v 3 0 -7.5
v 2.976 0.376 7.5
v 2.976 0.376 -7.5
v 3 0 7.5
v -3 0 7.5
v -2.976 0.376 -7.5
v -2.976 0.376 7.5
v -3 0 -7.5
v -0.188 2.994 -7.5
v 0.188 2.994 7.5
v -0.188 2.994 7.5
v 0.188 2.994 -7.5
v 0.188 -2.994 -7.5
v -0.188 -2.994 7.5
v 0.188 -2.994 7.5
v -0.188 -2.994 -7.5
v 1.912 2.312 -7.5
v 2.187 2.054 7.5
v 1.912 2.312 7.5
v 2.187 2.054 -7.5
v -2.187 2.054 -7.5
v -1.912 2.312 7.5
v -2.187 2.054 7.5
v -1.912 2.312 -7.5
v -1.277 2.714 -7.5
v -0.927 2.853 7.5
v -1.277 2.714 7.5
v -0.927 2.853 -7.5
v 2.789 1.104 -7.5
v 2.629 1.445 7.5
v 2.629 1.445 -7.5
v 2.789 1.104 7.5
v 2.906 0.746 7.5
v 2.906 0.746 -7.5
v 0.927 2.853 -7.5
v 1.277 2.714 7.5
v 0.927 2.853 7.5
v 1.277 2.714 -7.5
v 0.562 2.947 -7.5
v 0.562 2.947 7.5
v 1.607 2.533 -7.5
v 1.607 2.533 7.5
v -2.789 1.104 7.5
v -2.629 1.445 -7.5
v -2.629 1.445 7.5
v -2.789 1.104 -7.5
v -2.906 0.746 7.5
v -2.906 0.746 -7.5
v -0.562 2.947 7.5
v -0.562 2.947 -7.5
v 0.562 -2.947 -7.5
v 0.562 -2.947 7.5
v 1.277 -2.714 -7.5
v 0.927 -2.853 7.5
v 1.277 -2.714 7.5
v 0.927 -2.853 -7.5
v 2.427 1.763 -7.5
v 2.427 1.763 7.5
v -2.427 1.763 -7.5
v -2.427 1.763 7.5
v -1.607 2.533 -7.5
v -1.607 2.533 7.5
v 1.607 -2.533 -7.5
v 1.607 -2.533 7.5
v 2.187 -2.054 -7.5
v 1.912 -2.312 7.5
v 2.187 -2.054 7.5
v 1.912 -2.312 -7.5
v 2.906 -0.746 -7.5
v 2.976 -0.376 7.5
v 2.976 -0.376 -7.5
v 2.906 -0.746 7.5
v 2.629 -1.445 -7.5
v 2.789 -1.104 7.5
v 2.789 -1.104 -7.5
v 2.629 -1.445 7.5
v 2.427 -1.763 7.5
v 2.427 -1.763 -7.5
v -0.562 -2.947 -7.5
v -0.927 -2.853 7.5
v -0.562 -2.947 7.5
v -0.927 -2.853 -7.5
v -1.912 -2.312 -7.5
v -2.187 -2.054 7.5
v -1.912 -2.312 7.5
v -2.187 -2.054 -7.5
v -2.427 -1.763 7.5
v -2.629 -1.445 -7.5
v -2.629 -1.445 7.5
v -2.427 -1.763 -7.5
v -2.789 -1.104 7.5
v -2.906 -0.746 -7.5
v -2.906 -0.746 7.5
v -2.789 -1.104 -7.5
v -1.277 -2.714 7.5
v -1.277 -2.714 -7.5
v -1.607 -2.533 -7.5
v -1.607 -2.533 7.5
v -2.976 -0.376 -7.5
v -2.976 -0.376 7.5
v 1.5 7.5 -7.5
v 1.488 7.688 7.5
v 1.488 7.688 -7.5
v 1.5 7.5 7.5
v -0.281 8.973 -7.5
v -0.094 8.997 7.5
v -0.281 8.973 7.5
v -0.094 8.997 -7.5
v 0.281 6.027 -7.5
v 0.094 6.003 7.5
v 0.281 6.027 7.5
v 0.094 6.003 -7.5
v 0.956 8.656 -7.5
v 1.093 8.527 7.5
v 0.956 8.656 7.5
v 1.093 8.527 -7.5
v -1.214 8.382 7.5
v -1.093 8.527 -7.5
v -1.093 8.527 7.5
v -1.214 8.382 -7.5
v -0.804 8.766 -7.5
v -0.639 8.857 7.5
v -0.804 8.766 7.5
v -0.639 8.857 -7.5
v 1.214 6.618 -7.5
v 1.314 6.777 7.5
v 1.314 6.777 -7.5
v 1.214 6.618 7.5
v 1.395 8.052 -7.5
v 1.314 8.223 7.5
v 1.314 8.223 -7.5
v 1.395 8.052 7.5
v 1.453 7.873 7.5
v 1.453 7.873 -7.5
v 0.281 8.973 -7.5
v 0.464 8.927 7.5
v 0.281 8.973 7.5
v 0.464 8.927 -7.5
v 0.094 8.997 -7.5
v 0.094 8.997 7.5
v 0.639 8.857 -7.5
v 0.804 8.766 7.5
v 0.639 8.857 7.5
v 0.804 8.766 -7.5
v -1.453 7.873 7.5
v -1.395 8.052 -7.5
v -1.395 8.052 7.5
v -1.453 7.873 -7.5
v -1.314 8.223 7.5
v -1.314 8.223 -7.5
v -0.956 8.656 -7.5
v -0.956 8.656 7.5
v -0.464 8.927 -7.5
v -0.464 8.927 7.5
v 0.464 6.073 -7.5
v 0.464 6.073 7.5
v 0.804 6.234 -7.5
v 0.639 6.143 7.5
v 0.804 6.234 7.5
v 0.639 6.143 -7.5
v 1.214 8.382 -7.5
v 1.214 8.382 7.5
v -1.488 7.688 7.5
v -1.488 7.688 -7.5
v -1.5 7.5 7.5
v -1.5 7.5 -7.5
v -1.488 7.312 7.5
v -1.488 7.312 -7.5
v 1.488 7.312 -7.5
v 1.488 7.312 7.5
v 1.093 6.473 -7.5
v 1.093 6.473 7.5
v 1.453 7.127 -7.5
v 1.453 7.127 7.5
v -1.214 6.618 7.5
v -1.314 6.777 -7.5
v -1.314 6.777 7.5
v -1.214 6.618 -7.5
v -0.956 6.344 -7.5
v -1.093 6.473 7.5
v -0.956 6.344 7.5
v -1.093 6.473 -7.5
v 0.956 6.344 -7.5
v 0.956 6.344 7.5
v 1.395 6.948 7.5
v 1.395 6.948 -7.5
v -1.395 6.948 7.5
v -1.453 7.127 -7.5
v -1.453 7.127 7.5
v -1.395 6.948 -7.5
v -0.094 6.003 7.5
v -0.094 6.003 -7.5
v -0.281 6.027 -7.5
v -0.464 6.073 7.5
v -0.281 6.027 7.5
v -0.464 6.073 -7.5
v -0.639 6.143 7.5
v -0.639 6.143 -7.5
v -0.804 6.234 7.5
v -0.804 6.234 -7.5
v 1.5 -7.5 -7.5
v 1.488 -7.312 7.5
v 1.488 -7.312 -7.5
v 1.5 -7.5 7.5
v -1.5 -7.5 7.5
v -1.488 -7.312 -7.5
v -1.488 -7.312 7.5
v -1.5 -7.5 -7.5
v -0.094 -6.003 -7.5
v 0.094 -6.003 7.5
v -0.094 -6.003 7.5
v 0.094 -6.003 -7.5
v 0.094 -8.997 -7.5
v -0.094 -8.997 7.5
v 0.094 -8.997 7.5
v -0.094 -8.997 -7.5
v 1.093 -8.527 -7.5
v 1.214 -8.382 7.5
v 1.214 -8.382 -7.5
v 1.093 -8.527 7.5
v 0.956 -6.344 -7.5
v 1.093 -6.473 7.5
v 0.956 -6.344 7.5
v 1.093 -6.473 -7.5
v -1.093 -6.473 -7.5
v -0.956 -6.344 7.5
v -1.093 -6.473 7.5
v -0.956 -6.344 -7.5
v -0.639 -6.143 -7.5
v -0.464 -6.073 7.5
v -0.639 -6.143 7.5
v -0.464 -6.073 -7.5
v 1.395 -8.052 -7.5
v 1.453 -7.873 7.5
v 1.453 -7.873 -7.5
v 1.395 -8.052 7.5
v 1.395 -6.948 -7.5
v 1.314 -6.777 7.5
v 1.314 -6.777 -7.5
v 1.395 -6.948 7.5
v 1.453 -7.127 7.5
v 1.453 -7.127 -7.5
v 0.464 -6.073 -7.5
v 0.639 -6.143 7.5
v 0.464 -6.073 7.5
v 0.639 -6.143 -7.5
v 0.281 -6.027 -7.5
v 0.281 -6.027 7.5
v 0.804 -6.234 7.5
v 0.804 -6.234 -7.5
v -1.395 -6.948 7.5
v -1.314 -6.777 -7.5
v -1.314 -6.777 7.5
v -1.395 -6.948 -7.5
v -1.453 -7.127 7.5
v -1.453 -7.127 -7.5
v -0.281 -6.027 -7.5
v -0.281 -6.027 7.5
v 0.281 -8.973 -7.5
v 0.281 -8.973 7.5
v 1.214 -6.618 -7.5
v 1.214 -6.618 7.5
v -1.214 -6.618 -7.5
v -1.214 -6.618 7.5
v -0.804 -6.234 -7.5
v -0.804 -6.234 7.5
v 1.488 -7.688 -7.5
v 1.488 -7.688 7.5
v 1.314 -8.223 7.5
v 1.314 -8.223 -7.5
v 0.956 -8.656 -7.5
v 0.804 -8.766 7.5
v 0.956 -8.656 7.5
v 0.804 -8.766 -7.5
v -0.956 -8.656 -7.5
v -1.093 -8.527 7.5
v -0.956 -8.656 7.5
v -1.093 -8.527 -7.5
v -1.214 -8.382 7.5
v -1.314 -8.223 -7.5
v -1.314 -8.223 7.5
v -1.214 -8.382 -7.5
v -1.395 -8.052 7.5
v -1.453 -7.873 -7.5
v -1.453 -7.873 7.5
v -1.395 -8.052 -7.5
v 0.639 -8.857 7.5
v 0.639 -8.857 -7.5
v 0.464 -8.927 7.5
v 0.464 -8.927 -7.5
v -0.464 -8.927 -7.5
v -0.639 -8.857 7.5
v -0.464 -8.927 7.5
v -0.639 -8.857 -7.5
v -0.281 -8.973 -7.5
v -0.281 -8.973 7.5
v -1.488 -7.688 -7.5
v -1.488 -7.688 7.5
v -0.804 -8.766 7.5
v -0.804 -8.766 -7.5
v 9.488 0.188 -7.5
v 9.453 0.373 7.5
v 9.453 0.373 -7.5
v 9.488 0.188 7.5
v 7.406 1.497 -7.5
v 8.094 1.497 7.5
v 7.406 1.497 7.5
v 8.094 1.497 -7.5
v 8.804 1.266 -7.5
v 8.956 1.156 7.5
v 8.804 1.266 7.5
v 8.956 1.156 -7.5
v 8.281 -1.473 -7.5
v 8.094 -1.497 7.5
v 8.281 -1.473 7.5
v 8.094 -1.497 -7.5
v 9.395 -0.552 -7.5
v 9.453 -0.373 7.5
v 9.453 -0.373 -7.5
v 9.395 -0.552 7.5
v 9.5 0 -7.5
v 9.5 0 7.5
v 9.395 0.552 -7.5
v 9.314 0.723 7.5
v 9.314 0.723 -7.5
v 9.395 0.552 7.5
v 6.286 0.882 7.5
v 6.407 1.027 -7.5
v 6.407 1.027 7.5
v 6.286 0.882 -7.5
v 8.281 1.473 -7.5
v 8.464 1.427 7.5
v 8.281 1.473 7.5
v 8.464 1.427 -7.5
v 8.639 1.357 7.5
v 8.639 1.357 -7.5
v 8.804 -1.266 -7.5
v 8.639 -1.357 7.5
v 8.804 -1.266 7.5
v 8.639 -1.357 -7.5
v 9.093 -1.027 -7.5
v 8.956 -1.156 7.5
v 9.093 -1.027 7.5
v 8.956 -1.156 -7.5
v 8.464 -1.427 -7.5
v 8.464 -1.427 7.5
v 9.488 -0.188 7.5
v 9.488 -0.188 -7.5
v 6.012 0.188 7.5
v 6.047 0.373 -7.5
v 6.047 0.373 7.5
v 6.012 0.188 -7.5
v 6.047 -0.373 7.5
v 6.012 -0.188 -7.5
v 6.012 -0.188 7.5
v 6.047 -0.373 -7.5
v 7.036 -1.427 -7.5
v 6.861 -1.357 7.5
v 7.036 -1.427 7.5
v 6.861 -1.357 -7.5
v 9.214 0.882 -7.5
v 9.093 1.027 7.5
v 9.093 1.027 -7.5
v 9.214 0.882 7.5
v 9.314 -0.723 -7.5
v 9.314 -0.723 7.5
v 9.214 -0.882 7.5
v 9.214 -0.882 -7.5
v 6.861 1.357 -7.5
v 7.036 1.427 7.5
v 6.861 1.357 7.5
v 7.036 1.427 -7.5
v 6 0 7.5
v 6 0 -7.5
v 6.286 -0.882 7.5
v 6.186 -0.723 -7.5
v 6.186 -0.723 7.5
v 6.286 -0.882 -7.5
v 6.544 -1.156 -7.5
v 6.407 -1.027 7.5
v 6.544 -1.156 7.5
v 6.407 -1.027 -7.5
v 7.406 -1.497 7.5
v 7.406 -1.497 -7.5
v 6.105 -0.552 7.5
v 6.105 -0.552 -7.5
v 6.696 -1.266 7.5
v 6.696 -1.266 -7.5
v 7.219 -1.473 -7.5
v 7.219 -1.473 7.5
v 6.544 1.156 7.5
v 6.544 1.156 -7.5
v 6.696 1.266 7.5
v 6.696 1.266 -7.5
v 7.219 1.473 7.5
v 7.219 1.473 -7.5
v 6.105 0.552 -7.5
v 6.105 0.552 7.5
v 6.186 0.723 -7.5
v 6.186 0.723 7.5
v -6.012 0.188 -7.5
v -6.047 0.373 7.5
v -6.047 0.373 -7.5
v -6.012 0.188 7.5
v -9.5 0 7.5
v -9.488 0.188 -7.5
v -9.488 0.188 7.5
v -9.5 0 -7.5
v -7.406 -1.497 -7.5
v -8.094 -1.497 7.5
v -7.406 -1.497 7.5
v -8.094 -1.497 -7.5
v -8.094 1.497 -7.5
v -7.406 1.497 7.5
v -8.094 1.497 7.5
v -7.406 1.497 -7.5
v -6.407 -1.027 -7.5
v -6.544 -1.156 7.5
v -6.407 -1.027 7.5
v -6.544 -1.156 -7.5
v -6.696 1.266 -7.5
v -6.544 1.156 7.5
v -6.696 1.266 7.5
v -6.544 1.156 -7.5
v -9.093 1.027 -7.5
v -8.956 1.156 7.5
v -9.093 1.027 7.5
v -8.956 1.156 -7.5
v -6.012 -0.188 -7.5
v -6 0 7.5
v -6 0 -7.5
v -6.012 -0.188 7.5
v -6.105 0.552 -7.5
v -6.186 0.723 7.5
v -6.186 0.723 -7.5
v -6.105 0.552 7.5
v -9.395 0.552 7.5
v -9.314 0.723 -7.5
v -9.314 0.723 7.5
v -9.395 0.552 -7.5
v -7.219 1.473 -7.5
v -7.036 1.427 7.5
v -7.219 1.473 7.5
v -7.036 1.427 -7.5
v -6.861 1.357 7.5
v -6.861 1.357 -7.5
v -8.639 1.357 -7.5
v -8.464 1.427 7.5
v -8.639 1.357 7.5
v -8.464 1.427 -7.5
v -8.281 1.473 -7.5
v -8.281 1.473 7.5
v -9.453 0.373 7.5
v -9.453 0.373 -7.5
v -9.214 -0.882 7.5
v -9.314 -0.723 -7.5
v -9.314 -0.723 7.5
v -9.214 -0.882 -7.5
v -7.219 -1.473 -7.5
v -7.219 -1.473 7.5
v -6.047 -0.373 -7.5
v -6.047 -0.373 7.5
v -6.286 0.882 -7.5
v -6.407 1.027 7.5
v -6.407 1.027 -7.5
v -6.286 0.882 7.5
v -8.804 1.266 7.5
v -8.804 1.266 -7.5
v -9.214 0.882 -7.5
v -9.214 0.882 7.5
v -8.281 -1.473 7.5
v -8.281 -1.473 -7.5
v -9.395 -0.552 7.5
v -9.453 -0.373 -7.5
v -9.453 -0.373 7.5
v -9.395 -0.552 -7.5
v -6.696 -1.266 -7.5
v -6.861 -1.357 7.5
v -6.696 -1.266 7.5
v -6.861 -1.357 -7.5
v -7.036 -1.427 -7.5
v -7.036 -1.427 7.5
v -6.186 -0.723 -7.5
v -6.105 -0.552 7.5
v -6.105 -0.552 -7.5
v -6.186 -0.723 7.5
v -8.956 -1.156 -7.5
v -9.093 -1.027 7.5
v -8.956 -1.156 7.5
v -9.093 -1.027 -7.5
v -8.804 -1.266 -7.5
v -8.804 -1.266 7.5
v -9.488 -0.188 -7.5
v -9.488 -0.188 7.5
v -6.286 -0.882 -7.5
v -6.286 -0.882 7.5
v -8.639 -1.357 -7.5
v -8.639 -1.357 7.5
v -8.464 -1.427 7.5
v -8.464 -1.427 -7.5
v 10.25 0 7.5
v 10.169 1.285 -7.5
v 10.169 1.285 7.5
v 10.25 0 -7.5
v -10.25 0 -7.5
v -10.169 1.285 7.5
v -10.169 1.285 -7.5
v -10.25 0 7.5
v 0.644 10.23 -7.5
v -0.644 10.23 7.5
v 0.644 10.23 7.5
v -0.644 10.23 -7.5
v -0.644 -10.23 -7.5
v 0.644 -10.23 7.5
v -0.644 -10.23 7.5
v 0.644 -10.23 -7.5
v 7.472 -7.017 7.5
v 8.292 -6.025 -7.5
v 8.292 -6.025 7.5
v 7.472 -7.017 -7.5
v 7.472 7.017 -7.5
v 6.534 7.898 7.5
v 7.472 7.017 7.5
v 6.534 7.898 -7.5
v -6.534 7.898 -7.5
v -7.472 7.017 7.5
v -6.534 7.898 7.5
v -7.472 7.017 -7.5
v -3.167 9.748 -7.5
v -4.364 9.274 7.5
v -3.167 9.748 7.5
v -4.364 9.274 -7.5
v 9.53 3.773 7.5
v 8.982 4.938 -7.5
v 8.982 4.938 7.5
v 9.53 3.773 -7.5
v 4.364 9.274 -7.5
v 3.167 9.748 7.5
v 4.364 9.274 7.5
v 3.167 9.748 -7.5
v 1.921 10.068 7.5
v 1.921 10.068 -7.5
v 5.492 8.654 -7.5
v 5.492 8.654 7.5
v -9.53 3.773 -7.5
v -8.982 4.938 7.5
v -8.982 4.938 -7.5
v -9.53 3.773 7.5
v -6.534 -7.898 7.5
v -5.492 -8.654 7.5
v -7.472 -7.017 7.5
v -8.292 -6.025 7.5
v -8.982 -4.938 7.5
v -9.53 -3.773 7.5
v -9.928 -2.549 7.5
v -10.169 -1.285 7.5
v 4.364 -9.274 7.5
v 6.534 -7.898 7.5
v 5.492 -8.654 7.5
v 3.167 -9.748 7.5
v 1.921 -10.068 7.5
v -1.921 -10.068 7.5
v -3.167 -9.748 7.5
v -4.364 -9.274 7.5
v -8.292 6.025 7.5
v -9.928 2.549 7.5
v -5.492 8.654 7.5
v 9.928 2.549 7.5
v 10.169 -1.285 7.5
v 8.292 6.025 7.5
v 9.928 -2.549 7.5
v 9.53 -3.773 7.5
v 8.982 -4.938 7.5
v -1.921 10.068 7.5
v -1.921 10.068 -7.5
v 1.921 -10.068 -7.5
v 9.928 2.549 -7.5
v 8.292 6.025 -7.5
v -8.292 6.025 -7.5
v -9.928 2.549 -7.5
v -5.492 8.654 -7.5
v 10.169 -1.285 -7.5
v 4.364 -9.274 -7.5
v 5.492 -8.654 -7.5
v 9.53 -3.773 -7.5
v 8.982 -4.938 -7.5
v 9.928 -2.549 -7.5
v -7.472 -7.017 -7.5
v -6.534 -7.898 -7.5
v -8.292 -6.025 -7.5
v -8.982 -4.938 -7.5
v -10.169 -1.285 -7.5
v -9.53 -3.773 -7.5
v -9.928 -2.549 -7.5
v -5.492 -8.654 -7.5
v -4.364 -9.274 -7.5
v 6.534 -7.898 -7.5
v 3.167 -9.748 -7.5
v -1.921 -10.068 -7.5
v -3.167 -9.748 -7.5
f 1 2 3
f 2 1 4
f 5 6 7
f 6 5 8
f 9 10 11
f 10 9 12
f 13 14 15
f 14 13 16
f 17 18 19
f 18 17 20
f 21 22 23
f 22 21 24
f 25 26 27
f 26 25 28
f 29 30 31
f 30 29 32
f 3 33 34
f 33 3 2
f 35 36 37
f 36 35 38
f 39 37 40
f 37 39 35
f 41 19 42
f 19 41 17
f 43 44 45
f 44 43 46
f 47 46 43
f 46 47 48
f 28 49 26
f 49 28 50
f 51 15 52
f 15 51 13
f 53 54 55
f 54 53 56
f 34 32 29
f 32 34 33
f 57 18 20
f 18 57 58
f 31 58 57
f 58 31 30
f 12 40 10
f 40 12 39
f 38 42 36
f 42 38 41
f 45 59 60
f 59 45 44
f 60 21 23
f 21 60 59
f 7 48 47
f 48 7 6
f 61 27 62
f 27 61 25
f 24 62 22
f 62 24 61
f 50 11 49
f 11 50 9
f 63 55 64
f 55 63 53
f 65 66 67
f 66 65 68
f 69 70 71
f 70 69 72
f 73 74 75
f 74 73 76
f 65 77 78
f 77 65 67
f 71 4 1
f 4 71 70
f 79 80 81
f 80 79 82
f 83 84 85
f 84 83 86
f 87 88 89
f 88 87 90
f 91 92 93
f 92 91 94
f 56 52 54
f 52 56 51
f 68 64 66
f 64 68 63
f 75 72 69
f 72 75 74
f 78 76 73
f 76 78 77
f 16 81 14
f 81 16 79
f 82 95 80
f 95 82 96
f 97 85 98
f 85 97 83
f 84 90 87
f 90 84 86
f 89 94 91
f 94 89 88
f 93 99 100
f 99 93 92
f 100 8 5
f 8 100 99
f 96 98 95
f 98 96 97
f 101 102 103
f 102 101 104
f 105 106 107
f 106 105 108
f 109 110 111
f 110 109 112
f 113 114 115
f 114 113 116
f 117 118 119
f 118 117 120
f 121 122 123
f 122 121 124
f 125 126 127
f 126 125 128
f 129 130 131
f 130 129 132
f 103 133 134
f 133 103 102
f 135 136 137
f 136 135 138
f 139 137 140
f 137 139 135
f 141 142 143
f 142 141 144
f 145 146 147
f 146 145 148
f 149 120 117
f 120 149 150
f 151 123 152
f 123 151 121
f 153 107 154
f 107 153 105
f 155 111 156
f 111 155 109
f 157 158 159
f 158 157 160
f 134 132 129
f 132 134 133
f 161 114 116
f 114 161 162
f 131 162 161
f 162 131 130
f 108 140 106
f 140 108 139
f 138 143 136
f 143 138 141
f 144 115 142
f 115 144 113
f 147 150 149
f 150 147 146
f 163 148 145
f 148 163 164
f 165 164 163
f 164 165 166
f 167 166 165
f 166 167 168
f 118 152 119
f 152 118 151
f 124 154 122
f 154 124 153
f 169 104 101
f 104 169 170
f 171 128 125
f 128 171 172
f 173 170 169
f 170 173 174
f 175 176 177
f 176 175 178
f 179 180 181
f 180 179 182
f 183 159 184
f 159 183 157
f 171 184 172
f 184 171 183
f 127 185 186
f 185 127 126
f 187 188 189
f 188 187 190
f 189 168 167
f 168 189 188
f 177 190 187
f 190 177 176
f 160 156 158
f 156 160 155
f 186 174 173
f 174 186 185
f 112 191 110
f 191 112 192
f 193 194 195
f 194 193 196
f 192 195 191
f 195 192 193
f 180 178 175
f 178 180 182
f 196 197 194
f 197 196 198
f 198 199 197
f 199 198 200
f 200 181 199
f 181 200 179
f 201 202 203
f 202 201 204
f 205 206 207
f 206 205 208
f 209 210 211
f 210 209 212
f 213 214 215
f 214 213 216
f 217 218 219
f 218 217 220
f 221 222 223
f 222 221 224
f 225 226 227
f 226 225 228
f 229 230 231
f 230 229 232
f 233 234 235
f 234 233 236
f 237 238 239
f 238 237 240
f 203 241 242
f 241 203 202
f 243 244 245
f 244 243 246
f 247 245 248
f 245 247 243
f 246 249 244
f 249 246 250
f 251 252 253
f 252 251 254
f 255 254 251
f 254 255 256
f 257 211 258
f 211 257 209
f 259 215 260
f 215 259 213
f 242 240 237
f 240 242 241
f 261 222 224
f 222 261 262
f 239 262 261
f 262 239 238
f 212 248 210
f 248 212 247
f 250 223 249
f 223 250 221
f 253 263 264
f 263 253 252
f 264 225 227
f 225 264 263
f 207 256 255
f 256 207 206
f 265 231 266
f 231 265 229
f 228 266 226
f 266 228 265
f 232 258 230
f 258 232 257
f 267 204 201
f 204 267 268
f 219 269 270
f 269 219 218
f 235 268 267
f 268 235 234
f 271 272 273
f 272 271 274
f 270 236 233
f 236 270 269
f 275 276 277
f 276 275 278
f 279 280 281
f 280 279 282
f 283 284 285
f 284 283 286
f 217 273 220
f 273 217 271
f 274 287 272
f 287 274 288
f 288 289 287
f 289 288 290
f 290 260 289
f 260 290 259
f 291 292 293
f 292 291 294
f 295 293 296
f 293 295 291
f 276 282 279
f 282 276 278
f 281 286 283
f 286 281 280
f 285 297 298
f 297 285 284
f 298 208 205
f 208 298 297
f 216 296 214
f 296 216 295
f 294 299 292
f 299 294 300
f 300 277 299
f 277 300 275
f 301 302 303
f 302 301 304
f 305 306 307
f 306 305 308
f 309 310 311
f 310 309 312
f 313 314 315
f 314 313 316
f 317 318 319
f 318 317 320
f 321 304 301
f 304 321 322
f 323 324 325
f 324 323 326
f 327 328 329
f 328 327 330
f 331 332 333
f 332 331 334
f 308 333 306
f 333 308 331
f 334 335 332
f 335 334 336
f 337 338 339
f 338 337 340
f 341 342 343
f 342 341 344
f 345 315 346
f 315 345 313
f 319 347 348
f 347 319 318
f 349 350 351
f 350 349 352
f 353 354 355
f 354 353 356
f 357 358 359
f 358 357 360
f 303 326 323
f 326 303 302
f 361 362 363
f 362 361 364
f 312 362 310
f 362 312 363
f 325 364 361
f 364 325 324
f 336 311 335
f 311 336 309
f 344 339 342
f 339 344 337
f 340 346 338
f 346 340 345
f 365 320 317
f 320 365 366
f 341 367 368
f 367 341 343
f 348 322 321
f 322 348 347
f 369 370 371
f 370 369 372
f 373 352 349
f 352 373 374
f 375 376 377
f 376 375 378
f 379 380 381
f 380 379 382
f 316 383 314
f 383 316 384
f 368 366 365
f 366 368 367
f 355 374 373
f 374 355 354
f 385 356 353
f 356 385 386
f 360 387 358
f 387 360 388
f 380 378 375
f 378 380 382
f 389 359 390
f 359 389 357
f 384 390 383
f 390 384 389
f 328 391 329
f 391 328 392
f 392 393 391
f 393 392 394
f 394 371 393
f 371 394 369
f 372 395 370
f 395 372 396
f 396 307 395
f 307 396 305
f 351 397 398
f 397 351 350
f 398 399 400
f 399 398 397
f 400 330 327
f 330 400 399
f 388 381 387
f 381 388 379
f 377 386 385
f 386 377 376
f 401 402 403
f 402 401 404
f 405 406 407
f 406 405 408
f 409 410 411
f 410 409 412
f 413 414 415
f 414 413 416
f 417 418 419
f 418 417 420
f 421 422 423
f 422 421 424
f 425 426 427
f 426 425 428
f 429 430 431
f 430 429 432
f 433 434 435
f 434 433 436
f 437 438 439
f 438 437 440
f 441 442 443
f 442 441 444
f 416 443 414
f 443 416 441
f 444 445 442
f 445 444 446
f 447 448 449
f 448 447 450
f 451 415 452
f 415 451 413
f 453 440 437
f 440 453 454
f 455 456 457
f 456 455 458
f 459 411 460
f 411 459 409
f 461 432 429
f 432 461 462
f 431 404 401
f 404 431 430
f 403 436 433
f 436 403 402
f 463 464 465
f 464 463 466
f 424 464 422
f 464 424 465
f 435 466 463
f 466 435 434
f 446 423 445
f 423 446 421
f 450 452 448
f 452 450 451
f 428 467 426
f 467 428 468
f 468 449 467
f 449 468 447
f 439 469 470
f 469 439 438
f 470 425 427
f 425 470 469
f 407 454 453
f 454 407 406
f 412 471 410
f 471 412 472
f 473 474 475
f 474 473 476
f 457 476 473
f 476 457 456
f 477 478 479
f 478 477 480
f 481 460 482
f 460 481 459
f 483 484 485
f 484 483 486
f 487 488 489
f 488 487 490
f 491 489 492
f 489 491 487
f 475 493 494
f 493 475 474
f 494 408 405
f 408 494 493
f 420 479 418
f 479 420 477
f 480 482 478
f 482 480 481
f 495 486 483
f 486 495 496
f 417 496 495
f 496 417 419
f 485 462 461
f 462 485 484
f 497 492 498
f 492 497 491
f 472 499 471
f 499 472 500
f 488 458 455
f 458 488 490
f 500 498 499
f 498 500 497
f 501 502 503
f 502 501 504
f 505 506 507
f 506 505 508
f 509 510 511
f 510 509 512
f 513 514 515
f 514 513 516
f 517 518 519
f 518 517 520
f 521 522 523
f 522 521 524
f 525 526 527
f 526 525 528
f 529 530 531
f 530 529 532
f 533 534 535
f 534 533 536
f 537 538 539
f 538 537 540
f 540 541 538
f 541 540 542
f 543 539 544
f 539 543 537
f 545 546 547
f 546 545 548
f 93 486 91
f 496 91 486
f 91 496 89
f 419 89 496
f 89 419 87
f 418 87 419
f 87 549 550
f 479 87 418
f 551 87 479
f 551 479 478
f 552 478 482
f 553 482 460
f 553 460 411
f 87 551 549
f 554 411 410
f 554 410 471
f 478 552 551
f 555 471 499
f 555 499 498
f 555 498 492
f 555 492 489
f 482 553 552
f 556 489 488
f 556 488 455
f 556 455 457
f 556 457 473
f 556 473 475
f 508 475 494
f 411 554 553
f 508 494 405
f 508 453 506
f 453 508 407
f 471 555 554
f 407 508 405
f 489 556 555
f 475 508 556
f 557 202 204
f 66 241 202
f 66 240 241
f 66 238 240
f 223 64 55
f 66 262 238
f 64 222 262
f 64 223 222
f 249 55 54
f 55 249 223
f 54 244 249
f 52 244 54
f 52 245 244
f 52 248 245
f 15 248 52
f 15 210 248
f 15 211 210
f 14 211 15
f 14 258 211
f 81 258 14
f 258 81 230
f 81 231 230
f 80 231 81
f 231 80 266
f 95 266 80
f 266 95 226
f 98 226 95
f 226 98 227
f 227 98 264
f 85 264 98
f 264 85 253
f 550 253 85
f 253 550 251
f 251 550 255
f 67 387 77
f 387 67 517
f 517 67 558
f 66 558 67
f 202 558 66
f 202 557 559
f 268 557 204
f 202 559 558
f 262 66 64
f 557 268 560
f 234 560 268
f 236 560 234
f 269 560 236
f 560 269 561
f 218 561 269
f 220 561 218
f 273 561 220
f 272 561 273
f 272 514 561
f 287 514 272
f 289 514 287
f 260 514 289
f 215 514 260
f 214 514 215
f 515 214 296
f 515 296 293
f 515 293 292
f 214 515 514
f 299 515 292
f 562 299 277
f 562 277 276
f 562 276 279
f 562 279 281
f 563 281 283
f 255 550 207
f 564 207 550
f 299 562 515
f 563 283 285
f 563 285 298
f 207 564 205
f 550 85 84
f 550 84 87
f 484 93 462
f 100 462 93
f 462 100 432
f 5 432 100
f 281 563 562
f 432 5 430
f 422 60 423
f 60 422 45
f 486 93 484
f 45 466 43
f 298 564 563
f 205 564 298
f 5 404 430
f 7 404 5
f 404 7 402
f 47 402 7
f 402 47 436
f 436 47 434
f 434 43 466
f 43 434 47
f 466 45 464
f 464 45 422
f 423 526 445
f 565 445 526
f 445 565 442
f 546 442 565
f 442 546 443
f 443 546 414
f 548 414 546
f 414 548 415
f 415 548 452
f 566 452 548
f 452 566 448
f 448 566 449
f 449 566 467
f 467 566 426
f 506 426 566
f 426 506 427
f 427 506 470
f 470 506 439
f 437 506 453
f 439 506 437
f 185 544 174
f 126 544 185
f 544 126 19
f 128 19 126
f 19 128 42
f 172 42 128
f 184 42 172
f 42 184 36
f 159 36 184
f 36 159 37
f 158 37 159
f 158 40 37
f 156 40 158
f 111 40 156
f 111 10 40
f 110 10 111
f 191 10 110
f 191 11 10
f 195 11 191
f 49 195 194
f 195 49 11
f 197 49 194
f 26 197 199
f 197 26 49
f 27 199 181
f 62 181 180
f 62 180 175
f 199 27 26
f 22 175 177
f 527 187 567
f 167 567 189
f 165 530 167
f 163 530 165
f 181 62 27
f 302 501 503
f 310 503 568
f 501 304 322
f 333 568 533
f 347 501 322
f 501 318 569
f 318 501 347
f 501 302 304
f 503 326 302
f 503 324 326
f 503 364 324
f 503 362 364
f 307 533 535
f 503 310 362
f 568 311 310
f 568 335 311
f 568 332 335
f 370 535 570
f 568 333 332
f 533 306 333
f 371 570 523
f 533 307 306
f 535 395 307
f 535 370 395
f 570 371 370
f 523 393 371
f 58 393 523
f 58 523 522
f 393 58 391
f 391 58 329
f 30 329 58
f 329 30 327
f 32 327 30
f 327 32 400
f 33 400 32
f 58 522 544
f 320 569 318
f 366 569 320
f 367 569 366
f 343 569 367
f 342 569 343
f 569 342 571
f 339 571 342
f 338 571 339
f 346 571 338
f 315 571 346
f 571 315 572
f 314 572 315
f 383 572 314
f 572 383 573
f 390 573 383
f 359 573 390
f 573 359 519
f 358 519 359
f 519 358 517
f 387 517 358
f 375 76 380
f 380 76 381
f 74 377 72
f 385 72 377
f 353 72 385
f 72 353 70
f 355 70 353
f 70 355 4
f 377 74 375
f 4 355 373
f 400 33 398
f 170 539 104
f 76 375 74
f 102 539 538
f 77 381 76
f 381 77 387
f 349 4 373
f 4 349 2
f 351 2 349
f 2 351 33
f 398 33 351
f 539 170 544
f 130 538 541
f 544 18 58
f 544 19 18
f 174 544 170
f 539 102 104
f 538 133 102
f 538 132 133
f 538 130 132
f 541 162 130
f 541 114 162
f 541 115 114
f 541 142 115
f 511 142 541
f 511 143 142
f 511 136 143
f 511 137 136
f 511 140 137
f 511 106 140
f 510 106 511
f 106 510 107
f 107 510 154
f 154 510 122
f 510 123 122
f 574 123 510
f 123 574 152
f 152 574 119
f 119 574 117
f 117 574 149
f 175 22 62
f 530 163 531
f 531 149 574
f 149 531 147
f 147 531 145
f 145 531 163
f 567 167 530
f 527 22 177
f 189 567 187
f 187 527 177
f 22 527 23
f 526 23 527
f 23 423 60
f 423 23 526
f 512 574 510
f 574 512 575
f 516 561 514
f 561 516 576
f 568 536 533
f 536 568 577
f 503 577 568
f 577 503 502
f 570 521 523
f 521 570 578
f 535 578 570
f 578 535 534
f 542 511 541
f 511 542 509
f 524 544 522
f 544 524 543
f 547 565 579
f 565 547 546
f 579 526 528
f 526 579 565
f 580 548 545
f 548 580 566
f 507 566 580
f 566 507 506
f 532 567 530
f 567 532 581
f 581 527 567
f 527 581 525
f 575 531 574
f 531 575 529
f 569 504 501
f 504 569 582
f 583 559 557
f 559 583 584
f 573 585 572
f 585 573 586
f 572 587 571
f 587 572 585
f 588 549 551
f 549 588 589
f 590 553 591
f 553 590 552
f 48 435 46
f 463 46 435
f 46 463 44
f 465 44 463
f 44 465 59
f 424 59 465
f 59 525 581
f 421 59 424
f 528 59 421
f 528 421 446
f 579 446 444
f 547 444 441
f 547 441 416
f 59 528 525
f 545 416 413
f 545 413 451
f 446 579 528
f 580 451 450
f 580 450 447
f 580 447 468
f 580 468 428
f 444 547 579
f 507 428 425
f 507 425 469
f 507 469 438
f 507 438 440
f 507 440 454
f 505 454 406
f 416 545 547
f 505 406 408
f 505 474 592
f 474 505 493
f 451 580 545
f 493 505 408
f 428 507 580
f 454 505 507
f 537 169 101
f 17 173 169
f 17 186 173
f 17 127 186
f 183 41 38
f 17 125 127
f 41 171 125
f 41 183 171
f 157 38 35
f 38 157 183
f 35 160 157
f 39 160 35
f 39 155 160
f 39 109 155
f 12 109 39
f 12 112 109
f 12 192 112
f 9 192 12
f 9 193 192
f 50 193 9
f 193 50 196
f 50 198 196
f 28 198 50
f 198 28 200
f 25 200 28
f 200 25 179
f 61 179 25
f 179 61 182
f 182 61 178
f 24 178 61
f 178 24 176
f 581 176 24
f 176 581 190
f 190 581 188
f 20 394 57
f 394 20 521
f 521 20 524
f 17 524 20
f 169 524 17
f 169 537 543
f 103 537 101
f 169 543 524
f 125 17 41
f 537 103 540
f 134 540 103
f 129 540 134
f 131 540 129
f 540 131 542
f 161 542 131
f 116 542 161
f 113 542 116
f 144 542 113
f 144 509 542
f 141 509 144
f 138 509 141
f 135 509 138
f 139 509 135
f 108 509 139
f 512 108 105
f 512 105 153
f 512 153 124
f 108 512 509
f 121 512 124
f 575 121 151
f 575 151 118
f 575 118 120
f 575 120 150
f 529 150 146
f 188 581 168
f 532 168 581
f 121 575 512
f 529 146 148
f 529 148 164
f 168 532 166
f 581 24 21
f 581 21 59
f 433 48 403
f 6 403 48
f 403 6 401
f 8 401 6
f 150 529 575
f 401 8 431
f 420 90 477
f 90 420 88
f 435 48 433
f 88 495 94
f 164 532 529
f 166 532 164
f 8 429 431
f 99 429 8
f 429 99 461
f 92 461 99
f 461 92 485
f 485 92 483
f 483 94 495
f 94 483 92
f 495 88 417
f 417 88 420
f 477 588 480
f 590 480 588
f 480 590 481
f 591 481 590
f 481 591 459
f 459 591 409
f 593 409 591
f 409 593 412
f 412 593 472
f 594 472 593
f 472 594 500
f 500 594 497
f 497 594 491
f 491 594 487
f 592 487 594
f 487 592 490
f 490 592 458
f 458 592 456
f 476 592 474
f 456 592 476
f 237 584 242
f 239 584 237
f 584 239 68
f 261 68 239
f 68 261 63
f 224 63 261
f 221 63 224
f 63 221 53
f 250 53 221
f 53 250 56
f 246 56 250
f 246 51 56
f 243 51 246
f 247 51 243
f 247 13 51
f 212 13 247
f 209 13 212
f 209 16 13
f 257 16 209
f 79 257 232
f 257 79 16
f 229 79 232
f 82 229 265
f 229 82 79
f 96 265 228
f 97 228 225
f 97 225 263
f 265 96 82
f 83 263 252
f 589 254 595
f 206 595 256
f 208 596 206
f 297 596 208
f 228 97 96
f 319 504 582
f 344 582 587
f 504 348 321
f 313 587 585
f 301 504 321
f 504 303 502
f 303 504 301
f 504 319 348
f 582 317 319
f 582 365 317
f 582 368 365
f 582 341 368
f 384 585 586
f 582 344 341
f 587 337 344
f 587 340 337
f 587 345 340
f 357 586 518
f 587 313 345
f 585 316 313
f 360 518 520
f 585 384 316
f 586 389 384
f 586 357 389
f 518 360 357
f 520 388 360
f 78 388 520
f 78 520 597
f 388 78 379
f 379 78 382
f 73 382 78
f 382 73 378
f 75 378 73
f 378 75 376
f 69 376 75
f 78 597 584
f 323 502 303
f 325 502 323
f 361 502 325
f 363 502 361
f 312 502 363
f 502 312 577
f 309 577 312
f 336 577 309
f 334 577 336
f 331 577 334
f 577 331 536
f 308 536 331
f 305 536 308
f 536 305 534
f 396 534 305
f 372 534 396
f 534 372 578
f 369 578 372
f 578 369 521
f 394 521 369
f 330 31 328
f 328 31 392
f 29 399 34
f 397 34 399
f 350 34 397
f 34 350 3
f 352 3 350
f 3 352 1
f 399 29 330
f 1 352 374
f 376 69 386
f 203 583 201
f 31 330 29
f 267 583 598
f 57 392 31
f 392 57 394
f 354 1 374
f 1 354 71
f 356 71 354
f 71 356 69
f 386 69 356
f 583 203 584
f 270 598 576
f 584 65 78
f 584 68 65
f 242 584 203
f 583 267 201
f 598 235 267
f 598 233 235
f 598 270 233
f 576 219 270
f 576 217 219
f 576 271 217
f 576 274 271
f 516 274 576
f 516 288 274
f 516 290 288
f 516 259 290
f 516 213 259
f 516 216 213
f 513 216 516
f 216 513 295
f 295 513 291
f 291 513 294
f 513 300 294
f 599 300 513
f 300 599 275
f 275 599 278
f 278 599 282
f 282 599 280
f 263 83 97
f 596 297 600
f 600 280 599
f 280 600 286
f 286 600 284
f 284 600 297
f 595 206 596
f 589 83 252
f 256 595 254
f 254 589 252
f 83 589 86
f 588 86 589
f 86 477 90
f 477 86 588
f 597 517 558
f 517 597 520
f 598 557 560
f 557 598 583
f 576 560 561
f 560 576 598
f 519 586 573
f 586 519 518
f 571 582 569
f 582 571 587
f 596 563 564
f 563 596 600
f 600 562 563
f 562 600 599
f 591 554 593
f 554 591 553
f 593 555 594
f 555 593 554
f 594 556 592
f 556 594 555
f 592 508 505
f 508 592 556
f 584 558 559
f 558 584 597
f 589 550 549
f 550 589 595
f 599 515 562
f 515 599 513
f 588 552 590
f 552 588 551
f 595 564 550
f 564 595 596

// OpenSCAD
$fn = 50;


difference() {
	union() {
		translate(v = [0, 0, -7.5000000000]) {
			rotate(a = [0, 0, 0]) {
				cylinder(h = 15, r = 10.2500000000);
			}
		}
	}
	union() {
		translate(v = [0, 0, -125.0000000000]) {
			rotate(a = [0, 0, 0]) {
				cylinder(h = 250, r = 3.0000000000);
			}
		}
		translate(v = [0, 7.5000000000, -125.0000000000]) {
			rotate(a = [0, 0, 0]) {
				cylinder(h = 250, r = 1.5000000000);
			}
		}
		translate(v = [0, -7.5000000000, -125.0000000000]) {
			rotate(a = [0, 0, 0]) {
				cylinder(h = 250, r = 1.5000000000);
			}
		}
		translate(v = [7.7500000000, 0, -125.0000000000]) {
			rotate(a = [0, 0, 0]) {
				hull() {
					translate(v = [0.2500000000, 0, 0]) {
						rotate(a = [0, 0, 0]) {
							translate(v = [0, 0, 0]) {
								rotate(a = [0, 0, 0]) {
									cylinder(h = 250, r = 1.5000000000);
								}
							}
						}
					}
					translate(v = [-0.2500000000, 0, 0]) {
						rotate(a = [0, 0, 0]) {
							translate(v = [0, 0, 0]) {
								rotate(a = [0, 0, 0]) {
									cylinder(h = 250, r = 1.5000000000);
								}
							}
						}
					}
				}
			}
		}
		translate(v = [-7.7500000000, 0, -125.0000000000]) {
			rotate(a = [0, 0, 0]) {
				hull() {
					translate(v = [0.2500000000, 0, 0]) {
						rotate(a = [0, 0, 0]) {
							translate(v = [0, 0, 0]) {
								rotate(a = [0, 0, 0]) {
									cylinder(h = 250, r = 1.5000000000);
								}
							}
						}
					}
					translate(v = [-0.2500000000, 0, 0]) {
						rotate(a = [0, 0, 0]) {
							translate(v = [0, 0, 0]) {
								rotate(a = [0, 0, 0]) {
									cylinder(h = 250, r = 1.5000000000);
								}
							}
						}
					}
				}
			}
		}
	}
}
